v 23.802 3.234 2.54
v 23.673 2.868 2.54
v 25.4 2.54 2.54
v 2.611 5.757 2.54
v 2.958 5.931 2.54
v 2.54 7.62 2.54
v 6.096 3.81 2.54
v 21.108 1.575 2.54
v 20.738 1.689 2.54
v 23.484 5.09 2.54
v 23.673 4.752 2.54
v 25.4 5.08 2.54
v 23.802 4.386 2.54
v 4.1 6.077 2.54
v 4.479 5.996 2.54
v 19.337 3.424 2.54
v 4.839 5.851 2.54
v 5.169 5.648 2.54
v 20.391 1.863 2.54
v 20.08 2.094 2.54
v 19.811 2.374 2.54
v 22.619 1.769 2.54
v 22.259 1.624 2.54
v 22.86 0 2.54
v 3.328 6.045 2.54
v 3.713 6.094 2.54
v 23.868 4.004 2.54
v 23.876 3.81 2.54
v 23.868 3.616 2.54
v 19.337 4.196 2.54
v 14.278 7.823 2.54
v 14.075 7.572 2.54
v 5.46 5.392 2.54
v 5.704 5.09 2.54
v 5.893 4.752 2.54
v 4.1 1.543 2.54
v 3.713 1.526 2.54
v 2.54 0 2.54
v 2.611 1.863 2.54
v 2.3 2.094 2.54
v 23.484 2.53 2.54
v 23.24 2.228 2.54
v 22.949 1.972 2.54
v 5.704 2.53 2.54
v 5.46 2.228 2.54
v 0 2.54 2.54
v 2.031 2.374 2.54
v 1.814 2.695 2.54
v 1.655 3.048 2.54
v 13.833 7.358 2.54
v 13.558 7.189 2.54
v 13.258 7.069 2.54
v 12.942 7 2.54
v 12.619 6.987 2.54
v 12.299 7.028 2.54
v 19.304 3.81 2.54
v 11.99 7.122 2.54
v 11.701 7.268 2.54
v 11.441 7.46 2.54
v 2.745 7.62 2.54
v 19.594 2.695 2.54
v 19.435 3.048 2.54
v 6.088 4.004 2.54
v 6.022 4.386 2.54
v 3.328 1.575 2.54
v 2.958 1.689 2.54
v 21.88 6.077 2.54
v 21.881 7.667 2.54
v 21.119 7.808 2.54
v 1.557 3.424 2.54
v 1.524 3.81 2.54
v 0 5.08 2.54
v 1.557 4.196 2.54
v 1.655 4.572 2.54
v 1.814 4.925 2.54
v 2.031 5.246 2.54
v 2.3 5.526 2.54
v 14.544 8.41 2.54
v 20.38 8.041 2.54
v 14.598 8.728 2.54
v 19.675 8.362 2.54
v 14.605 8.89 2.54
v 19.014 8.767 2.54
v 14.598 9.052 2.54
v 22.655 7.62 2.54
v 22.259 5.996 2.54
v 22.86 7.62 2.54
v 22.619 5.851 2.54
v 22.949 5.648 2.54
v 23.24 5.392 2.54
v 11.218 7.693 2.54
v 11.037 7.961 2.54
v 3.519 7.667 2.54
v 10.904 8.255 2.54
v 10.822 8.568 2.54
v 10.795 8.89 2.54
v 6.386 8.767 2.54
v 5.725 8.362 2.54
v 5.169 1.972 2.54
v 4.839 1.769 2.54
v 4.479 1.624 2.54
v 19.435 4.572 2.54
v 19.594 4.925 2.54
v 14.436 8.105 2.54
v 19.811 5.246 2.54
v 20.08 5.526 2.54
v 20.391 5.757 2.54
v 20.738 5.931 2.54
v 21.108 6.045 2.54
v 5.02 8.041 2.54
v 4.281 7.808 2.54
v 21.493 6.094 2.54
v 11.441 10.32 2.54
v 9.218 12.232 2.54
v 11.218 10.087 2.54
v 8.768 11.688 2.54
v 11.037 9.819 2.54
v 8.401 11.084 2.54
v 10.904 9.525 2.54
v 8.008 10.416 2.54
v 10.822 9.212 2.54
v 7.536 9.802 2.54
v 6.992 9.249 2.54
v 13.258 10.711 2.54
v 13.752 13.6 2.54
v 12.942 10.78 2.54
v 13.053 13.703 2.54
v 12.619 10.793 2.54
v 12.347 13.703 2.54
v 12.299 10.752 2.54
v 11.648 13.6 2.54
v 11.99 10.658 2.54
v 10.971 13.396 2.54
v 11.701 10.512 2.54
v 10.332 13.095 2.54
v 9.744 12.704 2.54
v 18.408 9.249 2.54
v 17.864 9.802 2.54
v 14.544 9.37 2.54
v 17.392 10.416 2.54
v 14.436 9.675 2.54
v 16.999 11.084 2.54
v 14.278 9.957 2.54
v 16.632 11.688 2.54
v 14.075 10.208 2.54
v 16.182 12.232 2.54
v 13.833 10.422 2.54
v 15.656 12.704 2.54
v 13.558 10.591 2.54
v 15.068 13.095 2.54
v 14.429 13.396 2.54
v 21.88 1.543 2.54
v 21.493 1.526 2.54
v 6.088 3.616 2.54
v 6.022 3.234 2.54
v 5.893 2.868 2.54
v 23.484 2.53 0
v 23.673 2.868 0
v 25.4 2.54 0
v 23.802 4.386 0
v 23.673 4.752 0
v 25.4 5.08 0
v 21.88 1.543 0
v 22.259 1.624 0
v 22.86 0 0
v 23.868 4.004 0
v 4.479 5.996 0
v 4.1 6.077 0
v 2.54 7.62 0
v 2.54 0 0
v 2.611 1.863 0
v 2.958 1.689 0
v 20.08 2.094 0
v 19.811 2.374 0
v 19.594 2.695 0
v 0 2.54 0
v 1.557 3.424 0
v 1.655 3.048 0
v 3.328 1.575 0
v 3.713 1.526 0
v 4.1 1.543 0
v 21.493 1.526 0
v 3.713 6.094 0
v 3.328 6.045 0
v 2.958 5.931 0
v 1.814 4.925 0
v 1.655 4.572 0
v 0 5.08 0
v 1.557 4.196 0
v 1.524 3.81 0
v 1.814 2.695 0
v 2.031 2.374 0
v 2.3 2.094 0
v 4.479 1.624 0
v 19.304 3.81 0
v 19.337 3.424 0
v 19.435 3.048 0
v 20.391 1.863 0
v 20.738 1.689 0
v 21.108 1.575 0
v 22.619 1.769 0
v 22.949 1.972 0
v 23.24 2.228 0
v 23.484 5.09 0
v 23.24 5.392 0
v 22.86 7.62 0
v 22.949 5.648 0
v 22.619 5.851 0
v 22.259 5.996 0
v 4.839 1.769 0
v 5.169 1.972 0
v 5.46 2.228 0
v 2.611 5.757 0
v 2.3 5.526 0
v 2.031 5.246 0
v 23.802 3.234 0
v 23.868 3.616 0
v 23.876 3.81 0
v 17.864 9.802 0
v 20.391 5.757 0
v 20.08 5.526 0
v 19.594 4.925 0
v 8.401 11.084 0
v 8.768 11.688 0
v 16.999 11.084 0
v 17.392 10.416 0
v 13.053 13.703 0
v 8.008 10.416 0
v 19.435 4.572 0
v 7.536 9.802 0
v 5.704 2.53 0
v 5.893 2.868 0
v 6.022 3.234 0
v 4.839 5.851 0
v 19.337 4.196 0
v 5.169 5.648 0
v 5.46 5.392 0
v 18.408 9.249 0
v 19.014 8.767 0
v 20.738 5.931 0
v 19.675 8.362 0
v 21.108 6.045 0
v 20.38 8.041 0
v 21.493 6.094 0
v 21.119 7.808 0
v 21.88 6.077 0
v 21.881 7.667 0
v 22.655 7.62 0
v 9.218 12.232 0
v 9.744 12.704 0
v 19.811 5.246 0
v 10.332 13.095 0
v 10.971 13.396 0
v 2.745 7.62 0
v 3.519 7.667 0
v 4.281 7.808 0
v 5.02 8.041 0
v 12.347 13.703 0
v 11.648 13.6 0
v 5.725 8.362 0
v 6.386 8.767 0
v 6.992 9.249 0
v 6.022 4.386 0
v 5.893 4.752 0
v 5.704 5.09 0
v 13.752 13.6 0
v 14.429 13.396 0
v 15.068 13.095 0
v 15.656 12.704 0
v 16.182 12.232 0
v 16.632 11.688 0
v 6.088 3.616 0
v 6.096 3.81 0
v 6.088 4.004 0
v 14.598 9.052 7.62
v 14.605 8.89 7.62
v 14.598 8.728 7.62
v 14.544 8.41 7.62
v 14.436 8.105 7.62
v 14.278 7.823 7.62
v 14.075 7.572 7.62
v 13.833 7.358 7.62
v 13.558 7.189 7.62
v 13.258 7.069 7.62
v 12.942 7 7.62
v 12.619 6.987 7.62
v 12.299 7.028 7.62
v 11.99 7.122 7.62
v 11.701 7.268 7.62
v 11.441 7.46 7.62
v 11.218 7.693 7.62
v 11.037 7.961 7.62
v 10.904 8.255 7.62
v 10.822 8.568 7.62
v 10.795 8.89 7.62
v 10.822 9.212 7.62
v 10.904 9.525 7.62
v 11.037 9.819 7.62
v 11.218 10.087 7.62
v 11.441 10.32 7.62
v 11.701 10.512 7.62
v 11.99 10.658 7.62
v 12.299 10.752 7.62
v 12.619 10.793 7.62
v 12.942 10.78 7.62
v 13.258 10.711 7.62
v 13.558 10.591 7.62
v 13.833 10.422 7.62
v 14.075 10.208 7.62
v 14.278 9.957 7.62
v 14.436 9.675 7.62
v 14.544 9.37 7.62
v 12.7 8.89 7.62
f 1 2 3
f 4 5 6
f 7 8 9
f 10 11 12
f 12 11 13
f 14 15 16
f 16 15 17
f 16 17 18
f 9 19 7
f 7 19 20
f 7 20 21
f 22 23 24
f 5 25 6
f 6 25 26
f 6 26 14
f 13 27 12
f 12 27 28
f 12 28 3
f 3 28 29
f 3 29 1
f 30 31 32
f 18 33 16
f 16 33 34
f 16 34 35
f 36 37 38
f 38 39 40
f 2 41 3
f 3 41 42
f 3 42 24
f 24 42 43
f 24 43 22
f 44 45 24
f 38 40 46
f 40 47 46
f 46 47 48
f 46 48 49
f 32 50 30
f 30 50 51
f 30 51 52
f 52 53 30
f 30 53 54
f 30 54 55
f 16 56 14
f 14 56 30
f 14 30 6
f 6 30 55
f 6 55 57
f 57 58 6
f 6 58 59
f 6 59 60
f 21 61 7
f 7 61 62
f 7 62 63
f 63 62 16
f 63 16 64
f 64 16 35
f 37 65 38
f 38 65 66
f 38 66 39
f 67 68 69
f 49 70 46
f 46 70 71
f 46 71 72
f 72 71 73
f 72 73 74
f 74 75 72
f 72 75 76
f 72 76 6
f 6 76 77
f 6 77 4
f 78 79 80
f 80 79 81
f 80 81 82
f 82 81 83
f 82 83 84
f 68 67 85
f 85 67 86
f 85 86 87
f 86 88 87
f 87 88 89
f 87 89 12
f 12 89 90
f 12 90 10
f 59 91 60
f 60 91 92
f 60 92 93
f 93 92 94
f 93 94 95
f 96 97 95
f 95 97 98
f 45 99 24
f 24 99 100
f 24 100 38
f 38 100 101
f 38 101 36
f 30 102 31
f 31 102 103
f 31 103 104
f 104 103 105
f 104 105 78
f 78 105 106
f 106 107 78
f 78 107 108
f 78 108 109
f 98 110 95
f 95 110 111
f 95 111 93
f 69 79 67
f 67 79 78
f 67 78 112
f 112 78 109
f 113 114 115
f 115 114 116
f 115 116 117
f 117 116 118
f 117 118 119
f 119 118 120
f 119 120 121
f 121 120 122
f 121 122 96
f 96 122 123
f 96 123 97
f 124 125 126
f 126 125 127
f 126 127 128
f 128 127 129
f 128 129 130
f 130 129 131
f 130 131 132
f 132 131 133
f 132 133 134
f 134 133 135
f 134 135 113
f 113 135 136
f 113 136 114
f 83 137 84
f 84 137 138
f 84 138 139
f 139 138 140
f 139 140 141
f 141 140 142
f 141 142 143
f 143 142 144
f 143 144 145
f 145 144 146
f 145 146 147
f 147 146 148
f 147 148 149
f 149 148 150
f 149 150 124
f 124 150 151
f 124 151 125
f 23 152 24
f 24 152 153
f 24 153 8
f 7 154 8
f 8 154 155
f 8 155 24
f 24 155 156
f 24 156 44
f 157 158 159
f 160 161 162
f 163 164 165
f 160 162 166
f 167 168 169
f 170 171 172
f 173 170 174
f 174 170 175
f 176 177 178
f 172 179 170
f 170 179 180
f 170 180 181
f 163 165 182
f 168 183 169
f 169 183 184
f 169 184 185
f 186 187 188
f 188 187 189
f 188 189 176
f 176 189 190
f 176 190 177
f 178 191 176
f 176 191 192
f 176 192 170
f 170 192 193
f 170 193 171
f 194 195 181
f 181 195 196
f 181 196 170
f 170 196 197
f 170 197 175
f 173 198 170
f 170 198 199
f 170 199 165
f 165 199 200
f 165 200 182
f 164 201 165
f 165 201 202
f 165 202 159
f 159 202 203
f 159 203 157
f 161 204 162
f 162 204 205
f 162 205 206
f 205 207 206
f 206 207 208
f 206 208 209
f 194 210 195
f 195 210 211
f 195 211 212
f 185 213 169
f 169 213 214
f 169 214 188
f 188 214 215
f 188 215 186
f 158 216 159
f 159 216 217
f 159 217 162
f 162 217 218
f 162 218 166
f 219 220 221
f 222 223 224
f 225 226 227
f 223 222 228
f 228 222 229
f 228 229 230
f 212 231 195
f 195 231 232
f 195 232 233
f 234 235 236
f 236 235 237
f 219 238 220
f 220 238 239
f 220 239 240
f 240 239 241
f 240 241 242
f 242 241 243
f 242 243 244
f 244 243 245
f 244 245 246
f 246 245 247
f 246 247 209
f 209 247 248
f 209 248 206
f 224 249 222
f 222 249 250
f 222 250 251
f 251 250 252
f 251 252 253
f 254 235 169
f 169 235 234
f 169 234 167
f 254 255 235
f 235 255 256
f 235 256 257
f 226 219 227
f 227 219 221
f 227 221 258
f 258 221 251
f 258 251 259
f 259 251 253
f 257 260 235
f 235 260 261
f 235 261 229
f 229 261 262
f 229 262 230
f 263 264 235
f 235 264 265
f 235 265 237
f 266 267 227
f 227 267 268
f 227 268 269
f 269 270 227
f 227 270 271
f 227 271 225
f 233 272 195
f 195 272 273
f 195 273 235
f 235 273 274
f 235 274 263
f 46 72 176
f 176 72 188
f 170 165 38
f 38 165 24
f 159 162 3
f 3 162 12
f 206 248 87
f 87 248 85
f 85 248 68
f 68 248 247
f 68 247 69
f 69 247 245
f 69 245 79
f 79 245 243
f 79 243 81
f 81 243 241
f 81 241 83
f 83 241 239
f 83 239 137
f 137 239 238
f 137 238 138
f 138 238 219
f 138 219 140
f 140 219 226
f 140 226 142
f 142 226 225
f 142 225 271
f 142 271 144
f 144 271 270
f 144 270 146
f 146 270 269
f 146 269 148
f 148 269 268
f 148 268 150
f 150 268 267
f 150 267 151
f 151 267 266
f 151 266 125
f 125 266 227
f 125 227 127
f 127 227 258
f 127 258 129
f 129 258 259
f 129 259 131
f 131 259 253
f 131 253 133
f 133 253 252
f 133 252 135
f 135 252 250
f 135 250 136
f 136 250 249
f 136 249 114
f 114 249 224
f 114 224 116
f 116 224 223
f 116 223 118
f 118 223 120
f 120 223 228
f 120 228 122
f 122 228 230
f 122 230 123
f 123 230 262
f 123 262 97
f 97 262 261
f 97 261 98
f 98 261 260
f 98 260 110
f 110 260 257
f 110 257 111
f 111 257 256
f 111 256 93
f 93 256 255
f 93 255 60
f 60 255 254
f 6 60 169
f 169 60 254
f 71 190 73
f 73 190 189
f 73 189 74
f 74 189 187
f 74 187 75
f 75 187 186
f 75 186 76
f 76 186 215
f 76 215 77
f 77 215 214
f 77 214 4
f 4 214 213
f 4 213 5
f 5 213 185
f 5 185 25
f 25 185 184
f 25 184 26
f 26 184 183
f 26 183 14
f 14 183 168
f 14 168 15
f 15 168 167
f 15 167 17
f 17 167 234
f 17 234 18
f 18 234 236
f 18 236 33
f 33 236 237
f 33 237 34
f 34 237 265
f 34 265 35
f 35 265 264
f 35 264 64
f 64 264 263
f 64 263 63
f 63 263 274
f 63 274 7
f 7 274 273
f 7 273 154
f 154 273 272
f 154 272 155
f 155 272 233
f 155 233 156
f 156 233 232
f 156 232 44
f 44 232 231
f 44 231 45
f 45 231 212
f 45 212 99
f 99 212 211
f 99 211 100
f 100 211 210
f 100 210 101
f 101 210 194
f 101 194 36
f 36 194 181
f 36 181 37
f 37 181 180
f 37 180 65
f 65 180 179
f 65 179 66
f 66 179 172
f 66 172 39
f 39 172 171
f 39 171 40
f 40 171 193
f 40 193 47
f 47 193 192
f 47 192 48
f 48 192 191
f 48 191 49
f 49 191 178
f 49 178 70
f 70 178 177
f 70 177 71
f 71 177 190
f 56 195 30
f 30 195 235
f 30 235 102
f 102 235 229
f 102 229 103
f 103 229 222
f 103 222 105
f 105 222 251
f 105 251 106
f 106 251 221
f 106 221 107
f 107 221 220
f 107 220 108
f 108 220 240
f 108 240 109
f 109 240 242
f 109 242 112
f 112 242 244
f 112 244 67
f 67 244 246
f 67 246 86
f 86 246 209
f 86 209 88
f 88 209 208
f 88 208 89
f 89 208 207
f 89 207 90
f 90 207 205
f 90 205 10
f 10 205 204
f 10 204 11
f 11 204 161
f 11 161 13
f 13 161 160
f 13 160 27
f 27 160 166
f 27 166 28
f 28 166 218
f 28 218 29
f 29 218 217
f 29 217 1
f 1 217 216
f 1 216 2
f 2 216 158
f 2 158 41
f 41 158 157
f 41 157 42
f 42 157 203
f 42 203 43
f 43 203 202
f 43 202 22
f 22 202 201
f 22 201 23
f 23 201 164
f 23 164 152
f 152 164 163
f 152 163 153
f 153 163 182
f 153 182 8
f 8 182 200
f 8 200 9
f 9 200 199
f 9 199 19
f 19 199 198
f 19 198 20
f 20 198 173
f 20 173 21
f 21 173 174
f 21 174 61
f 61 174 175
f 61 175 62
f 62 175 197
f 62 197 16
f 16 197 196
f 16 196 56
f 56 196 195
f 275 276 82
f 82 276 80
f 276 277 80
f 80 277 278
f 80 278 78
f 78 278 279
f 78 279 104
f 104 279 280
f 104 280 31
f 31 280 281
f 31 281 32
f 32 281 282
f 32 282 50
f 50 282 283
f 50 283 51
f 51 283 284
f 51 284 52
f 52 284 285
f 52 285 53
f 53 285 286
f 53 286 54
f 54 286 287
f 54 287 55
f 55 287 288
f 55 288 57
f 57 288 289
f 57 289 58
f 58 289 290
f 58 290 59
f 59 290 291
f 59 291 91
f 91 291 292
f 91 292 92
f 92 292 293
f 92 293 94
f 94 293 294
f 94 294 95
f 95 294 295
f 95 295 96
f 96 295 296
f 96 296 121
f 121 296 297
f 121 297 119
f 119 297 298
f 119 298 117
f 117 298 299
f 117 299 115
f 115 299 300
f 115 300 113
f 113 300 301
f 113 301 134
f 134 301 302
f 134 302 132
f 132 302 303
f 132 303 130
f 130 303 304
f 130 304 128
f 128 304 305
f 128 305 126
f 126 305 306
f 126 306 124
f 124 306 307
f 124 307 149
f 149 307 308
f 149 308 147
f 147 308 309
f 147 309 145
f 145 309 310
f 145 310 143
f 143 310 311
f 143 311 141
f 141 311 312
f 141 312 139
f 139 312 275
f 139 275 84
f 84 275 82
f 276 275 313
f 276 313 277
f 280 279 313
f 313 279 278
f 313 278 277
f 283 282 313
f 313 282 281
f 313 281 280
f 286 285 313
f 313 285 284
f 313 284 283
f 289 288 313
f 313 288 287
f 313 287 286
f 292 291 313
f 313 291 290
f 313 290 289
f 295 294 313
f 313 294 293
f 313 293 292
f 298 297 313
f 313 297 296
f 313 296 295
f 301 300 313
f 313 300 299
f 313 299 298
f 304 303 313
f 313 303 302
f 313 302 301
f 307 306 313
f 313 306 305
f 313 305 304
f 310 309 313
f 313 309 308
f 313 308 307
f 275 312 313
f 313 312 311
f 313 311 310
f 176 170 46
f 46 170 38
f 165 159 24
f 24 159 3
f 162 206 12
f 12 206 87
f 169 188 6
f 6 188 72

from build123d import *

# Parameters (mm, degrees)
SKETCH1_R           = 2.286
BOSS_EXTRUDE1_DEPTH = 2.54
SKETCH2_R           = 1.905
BOSS_EXTRUDE2_DEPTH = 5.08
CHAMFER1_SIZE       = 2.54


with BuildPart() as part:
    # Sketch1 → Boss-Extrude1 (new body)
    with BuildSketch(Plane.XY):
        with BuildLine():
            Line((22.654726315, 7.62), (25.4, 7.62))
            Line((25.4, 7.62), (25.4, 0))
            Line((25.4, 0), (0, 0))
            Line((0, 0), (0, 7.62))
            Line((0, 7.62), (2.745273685, 7.62))
            ThreePointArc((2.745273685, 7.62), (6.061453031, 8.554701805), (8.401368182, 11.083636364))
            ThreePointArc((8.401368182, 11.083636364), (12.7, 13.716), (16.998631818, 11.083636364))
            ThreePointArc((16.998631818, 11.083636364), (19.338546969, 8.554701805), (22.654726315, 7.62))
        make_face()
        with Locations((3.81, 3.81)):
            Circle(SKETCH1_R, mode=Mode.SUBTRACT)
        with Locations((21.59, 3.81)):
            Circle(SKETCH1_R, mode=Mode.SUBTRACT)
    extrude(amount=BOSS_EXTRUDE1_DEPTH)

    # Sketch2 → Boss-Extrude2 (add)
    with BuildSketch(Plane.XY.offset(2.54)):
        with Locations((12.7, 8.89)):
            Circle(SKETCH2_R)
    extrude(amount=BOSS_EXTRUDE2_DEPTH)

    # Chamfer1
    chamfer1_edges = [part.edges().sort_by_distance(p)[0] for p in [
        (0, 7.62, 1.27),
        (25.4, 7.62, 1.27),
        (25.4, 0, 1.27),
        (0, 0, 1.27),
    ]]
    chamfer(chamfer1_edges, length=CHAMFER1_SIZE)


solid = part.part
